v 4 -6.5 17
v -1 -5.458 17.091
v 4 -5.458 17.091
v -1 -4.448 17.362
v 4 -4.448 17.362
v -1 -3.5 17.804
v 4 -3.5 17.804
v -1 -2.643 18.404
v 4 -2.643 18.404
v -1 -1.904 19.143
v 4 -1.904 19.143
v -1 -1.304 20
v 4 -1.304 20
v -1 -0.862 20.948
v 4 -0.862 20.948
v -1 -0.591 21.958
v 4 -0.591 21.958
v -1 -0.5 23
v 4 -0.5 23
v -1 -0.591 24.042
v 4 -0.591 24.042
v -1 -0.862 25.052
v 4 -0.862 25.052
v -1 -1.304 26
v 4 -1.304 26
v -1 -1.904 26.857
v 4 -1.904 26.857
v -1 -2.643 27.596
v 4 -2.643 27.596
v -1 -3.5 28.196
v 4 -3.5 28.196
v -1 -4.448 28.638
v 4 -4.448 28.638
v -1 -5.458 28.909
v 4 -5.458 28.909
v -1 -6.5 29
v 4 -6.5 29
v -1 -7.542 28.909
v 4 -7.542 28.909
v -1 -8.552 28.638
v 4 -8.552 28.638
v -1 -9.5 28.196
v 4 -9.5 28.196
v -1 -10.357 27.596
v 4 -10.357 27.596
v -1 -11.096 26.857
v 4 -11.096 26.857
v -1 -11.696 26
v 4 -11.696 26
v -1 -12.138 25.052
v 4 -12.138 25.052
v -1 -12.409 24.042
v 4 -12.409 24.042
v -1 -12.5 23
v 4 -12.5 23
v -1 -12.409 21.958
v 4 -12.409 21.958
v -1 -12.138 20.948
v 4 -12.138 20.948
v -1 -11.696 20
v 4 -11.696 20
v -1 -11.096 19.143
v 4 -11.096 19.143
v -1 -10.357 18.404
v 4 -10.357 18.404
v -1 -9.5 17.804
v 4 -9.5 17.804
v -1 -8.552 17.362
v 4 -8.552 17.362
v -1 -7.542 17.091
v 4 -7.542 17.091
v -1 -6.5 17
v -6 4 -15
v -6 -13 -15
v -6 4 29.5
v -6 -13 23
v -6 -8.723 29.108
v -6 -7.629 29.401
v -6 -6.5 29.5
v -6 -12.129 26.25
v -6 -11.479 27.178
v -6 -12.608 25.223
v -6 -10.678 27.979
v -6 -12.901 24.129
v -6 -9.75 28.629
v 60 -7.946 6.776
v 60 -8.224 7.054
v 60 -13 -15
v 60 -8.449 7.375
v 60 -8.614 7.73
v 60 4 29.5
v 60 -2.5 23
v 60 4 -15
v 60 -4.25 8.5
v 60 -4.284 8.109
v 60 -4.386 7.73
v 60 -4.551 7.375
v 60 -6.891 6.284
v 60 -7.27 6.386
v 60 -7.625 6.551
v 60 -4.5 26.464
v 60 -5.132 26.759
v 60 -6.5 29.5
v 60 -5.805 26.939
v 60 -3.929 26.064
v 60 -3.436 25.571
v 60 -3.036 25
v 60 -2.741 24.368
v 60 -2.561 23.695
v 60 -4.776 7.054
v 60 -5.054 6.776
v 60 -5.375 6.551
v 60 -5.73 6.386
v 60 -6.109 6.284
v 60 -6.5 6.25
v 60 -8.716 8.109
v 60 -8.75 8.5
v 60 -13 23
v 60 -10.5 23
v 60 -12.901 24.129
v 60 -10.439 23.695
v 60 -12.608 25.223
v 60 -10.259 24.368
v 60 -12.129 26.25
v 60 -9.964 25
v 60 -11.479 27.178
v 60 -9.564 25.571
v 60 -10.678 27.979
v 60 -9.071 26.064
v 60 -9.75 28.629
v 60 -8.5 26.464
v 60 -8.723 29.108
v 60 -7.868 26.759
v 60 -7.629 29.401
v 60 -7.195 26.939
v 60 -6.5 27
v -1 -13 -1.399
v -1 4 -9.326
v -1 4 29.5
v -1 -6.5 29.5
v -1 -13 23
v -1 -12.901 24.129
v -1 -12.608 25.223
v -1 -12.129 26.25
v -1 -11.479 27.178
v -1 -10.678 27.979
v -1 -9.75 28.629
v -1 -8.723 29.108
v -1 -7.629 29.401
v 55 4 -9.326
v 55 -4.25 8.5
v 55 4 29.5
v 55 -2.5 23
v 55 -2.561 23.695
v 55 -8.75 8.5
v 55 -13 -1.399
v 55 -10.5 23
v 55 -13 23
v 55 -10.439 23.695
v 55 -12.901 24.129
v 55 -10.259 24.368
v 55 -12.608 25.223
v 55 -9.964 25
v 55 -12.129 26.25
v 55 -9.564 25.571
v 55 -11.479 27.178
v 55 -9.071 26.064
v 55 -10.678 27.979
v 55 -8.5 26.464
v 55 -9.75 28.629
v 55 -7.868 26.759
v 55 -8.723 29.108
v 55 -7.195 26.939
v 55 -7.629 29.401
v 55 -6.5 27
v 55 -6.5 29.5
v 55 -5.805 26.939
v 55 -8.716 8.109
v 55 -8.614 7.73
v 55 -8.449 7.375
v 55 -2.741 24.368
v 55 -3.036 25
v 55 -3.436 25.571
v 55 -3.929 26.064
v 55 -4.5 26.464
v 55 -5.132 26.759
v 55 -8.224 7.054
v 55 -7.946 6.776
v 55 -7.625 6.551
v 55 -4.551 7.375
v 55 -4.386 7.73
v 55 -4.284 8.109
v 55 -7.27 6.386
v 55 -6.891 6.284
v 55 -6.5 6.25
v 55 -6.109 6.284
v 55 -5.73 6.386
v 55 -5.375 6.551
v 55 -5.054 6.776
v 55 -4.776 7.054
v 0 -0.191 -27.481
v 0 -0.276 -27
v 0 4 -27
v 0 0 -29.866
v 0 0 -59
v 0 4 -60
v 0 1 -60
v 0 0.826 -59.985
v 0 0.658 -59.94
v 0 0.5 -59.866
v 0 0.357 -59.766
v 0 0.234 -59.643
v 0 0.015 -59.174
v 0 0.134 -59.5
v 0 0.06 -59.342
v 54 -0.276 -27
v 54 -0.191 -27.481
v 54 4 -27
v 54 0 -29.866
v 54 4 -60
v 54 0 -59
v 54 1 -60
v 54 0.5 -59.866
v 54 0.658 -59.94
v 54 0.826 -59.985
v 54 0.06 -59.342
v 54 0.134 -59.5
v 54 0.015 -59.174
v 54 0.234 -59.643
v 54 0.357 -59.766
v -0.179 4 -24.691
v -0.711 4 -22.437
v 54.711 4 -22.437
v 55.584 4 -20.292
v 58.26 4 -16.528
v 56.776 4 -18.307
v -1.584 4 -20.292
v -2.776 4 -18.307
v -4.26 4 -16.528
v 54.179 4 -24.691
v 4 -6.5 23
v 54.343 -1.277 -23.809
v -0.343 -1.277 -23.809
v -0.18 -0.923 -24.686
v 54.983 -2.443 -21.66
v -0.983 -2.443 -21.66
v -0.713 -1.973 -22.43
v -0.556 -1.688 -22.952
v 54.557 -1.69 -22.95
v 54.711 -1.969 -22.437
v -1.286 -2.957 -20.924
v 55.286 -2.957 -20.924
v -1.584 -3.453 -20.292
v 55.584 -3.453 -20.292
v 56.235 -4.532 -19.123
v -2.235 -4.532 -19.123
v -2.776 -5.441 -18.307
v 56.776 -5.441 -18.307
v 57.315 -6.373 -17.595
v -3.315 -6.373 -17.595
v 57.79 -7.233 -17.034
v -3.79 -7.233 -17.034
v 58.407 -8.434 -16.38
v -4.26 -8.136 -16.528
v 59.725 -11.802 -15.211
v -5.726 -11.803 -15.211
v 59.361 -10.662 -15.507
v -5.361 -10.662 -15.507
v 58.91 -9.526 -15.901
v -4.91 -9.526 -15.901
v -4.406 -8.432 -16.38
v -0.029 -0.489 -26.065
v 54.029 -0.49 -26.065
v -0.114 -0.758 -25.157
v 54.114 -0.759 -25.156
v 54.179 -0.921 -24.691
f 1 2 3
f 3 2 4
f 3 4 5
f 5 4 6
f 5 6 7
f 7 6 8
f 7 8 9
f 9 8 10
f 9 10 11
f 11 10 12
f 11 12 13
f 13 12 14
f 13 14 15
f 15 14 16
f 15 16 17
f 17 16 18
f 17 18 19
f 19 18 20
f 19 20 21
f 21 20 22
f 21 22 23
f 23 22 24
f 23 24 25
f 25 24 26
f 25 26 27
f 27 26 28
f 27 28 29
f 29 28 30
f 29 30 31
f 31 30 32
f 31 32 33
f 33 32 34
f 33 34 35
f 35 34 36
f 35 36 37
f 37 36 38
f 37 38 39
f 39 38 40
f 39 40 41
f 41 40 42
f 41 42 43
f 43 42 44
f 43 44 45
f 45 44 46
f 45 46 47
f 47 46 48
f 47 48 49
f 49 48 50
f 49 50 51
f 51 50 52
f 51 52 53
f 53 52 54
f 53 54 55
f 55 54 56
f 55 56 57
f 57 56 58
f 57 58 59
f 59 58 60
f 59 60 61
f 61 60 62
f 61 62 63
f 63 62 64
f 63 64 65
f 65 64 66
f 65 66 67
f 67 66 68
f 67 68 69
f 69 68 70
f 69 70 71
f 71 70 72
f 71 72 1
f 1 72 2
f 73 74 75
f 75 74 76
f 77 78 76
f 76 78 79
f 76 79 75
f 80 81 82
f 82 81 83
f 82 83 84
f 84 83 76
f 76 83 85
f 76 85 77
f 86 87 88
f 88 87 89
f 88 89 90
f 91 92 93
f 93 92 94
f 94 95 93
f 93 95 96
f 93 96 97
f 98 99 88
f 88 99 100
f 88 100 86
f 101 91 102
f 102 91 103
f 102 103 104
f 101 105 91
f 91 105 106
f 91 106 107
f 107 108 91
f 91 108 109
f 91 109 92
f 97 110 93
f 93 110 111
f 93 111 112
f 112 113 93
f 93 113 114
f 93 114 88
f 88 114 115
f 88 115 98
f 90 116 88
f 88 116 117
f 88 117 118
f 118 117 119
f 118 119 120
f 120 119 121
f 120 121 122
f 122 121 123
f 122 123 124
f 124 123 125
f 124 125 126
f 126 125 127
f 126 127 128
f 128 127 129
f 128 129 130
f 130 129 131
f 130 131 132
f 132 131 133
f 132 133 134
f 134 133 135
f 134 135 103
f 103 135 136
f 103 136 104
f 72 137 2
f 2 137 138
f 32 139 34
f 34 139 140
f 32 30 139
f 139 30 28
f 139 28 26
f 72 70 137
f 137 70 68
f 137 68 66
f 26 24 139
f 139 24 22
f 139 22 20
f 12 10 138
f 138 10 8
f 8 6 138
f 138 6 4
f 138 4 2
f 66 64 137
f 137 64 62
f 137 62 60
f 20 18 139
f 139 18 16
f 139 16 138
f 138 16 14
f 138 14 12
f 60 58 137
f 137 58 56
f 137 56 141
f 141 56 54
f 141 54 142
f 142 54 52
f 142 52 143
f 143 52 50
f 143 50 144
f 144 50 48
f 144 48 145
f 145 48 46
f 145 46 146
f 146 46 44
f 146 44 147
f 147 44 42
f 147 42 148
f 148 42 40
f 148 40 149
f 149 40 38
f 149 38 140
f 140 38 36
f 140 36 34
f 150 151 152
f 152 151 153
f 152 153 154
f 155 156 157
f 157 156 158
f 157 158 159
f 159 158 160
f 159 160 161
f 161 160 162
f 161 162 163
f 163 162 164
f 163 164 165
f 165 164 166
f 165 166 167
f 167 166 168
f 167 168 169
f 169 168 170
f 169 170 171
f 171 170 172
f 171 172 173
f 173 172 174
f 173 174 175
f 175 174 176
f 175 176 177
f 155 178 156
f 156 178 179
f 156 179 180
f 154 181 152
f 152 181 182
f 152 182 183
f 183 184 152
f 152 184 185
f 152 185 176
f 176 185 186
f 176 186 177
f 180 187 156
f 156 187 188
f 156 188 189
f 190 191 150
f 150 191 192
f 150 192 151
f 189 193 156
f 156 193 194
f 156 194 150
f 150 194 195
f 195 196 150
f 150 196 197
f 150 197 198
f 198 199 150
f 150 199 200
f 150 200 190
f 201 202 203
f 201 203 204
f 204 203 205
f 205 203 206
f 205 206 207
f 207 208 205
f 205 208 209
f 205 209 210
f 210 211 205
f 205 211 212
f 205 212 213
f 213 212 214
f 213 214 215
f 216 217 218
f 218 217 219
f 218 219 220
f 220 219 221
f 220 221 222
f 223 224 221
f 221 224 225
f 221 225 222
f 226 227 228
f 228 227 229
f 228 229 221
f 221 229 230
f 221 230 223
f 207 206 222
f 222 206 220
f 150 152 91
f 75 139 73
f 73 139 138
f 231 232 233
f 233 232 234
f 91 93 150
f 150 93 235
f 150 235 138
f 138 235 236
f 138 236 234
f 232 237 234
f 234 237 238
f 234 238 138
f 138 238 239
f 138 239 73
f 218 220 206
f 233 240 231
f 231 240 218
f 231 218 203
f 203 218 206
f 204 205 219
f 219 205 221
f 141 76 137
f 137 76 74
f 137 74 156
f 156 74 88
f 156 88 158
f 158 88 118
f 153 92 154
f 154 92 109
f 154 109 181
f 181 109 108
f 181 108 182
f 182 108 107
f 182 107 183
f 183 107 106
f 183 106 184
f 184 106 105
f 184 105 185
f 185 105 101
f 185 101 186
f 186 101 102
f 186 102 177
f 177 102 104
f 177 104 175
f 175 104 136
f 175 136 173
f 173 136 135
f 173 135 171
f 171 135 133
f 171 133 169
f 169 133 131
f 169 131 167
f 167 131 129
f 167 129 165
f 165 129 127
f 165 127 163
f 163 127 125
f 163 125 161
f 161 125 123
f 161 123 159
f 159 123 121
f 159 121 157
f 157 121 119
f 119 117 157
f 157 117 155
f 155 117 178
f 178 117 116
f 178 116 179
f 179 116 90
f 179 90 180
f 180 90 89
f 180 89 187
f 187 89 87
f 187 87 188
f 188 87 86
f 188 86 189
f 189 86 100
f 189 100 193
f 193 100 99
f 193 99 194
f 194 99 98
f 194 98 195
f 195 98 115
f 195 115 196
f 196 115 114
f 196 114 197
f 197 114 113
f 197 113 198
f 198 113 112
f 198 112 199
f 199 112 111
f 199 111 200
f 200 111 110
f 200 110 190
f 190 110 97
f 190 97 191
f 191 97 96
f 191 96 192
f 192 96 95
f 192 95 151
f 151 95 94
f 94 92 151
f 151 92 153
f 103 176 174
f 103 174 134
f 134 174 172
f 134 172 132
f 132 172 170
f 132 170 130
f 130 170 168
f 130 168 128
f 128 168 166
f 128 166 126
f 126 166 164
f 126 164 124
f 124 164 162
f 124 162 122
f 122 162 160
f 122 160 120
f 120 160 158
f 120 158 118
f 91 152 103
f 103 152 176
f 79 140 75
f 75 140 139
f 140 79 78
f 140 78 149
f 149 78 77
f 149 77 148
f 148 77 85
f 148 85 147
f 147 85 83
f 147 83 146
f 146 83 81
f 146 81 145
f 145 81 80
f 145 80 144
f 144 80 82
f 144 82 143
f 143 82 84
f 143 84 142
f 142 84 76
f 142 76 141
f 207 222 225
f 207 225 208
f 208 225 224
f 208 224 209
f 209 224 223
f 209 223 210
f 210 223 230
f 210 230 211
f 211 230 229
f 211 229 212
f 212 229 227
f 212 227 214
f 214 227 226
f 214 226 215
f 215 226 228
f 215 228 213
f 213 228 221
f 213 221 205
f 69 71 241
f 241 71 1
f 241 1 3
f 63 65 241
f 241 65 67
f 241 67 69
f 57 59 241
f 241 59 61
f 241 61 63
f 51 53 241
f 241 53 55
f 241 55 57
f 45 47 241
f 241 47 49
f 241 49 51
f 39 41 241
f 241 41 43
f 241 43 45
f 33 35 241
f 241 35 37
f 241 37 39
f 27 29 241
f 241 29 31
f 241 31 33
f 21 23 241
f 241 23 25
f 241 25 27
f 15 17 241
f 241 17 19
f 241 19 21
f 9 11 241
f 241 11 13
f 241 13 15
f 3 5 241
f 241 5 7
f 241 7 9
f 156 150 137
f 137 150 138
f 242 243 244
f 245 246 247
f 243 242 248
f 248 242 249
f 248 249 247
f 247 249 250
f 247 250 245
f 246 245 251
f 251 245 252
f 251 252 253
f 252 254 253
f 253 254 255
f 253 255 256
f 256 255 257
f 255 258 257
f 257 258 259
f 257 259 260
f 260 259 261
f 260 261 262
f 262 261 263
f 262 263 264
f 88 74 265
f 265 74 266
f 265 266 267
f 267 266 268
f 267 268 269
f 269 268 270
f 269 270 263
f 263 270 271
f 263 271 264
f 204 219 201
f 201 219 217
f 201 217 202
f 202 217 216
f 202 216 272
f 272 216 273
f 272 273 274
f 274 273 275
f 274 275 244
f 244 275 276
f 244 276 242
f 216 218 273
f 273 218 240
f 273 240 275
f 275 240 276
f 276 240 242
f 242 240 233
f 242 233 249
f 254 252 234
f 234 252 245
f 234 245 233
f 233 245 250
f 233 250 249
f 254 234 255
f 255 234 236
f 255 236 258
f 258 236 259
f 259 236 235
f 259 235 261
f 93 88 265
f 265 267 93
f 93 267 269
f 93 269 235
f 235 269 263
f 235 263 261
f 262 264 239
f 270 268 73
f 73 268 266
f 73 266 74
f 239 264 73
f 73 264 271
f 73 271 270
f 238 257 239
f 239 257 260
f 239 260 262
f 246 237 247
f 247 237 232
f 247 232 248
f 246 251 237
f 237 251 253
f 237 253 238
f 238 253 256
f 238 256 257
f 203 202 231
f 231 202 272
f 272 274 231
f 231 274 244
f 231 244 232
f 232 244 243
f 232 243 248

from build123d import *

# Parameters (mm, degrees)
SKETCH1_W                = 54
SKETCH1_H                = 60
BOSS_EXTRUDE1_DEPTH      = 4
BOSS_EXTRUDE2_DEPTH      = 6
BOSS_EXTRUDE2_DEPTH_BACK = 60
SKETCH2_W                = 10
SKETCH2_H                = 17
SKETCH3_W                = 28
SKETCH3_H                = 13
BOSS_EXTRUDE3_DEPTH      = 66
SKETCH9_W                = 56
SKETCH9_H                = 28
CUT_EXTRUDE3_DEPTH       = 13
SKETCH10_W               = 5
SKETCH10_H               = 28
BOSS_EXTRUDE6_DEPTH      = 4
SKETCH11_R               = 2.25
CUT_EXTRUDE5_DEPTH       = 91.138781887
SKETCH12_W               = 5
SKETCH12_H               = 17
BOSS_EXTRUDE7_DEPTH      = 4
CUT_EXTRUDE6_DEPTH       = 91.138781887
FILLET3_R                = 1
BOSS_EXTRUDE8_DEPTH      = 10
BOSS_EXTRUDE8_DEPTH_BACK = 5
SKETCH14_R               = 4
SKETCH15_W               = 17
SKETCH15_H               = 8
BOSS_EXTRUDE9_DEPTH      = 5
SKETCH16_R               = 6
BOSS_EXTRUDE11_DEPTH     = 12
SKETCH17_R               = 6
CUT_EXTRUDE7_DEPTH       = 5
CHAMFER1_SIZE            = 9.326153163
CHAMFER1_SIZE_2          = 20
SKETCH18_W               = 66
SKETCH18_H               = 5
BOSS_EXTRUDE14_DEPTH     = 17
FILLET8_R                = 15
FILLET9_R                = 15


with BuildPart() as part:
    # Sketch1 → Boss-Extrude1 (new body)
    with BuildSketch(Plane(origin=(0, 0, 0), x_dir=(1, 0, 0), z_dir=(0, 1, 0))):
        with Locations((27, 30)):
            Rectangle(SKETCH1_W, SKETCH1_H)
    extrude(amount=BOSS_EXTRUDE1_DEPTH)

    # Sketch2 → Boss-Extrude2 (add, two sides: drawn at the far end of the back side and taken through both)
    with BuildSketch(Plane(origin=(54, 0, 0), x_dir=(0, 0, -1), z_dir=(1, 0, 0)).offset(-BOSS_EXTRUDE2_DEPTH_BACK)):
        with Locations((5, -4.5)):
            Rectangle(SKETCH2_W, SKETCH2_H)
    extrude(amount=BOSS_EXTRUDE2_DEPTH + BOSS_EXTRUDE2_DEPTH_BACK)

    # Sketch3 → Boss-Extrude3 (add, through all)
    with BuildSketch(Plane(origin=(60, 0, 0), x_dir=(0, 0, -1), z_dir=(1, 0, 0))):
        with Locations((-14, -6.5)):
            Rectangle(SKETCH3_W, SKETCH3_H)
    extrude(amount=-BOSS_EXTRUDE3_DEPTH)

    # Sketch9 → Cut-Extrude3 (cut)
    with BuildSketch(Plane(origin=(0, 0, 0), x_dir=(1, 0, 0), z_dir=(0, 1, 0))):
        with Locations((27, -14)):
            Rectangle(SKETCH9_W, SKETCH9_H)
    extrude(amount=-CUT_EXTRUDE3_DEPTH, mode=Mode.SUBTRACT)

    # Sketch10 → Boss-Extrude6 (add)
    with BuildSketch(Plane(origin=(0, 0, 0), x_dir=(1, 0, 0), z_dir=(0, 1, 0))):
        with Locations((-3.5, -14)):
            Rectangle(SKETCH10_W, SKETCH10_H)
        with Locations((57.5, -14)):
            Rectangle(SKETCH10_W, SKETCH10_H)
    extrude(amount=BOSS_EXTRUDE6_DEPTH)

    # Sketch11 → Cut-Extrude5 (cut, through all)
    with BuildSketch(Plane(origin=(60, 0, 0), x_dir=(0, 0, -1), z_dir=(1, 0, 0))):
        with BuildLine():
            Line((-22.048344565, -2.614854966), (-23, -2.5))
            ThreePointArc((-23, -2.5), (-27, -6.5), (-23, -10.5))
            Line((-23, -10.5), (-22.048344565, -10.385145034))
            ThreePointArc((-22.048344565, -10.385145034), (-19.853047368, -8.96914745), (-19, -6.5))
            ThreePointArc((-19, -6.5), (-19.853047368, -4.03085255), (-22.048344565, -2.614854966))
        make_face()
        with BuildLine():
            Line((-8.5, -4.25), (-22.048344565, -2.614854966))
            ThreePointArc((-22.048344565, -2.614854966), (-19.853047368, -4.03085255), (-19, -6.5))
            ThreePointArc((-19, -6.5), (-19.853047368, -8.96914745), (-22.048344565, -10.385145034))
            Line((-22.048344565, -10.385145034), (-8.5, -8.75))
            ThreePointArc((-8.5, -8.75), (-10.75, -6.5), (-8.5, -4.25))
        make_face()
        with Locations((-8.5, -6.5)):
            Circle(SKETCH11_R)
    extrude(amount=-CUT_EXTRUDE5_DEPTH, mode=Mode.SUBTRACT)

    # Sketch12 → Boss-Extrude7 (add)
    with BuildSketch(Plane.XY.offset(28)):
        with Locations((57.5, -4.5)):
            Rectangle(SKETCH12_W, SKETCH12_H)
        with Locations((-3.5, -4.5)):
            Rectangle(SKETCH12_W, SKETCH12_H)
    extrude(amount=BOSS_EXTRUDE7_DEPTH)

    # Sketch13 → Cut-Extrude6 (cut, through all)
    with BuildSketch(Plane.ZY.offset(6)):
        with BuildLine():
            Line((29.5, -6.5), (29.5, 4))
            Line((29.5, 4), (32, 4))
            Line((32, 4), (32, -13))
            Line((32, -13), (23, -13))
            ThreePointArc((23, -13), (27.596194078, -11.096194078), (29.5, -6.5))
        make_face()
    extrude(amount=-CUT_EXTRUDE6_DEPTH, mode=Mode.SUBTRACT)

    # Fillet3
    fillet3_edges = [part.edges().sort_by_distance(p)[0] for p in [
        (27, 0, -60),
    ]]
    fillet(fillet3_edges, radius=FILLET3_R)

    # Sketch14 → Boss-Extrude8 (add, two sides: drawn at the far end of the back side and taken through both)
    with BuildSketch(Plane(origin=(-1, 0, 0), x_dir=(0, 0, -1), z_dir=(1, 0, 0)).offset(-BOSS_EXTRUDE8_DEPTH_BACK)):
        with Locations((-23, -6.5)):
            Circle(SKETCH14_R)
    extrude(amount=BOSS_EXTRUDE8_DEPTH + BOSS_EXTRUDE8_DEPTH_BACK)

    # Sketch15 → Boss-Extrude9 (add)
    with BuildSketch(Plane(origin=(-1, 0, 0), x_dir=(0, 0, -1), z_dir=(1, 0, 0))):
        with Locations((-14.5, -6.5)):
            Rectangle(SKETCH15_W, SKETCH15_H)
    extrude(amount=-BOSS_EXTRUDE9_DEPTH)

    # Sketch16 → Boss-Extrude11 (add)
    with BuildSketch(Plane(origin=(9, 0, 0), x_dir=(0, 0, -1), z_dir=(1, 0, 0))):
        with Locations((-23, -6.5)):
            Circle(SKETCH16_R)
    extrude(amount=-BOSS_EXTRUDE11_DEPTH)

    # Sketch17 → Cut-Extrude7 (cut)
    with BuildSketch(Plane(origin=(9, 0, 0), x_dir=(0, 0, -1), z_dir=(1, 0, 0))):
        with Locations((-23, -6.5)):
            Circle(SKETCH17_R)
    extrude(amount=-CUT_EXTRUDE7_DEPTH, mode=Mode.SUBTRACT)

    # Chamfer1
    # the kernel refuses this chamfer: 20, 9.326153163 mm, written as the material it takes off along each edge
    with BuildSketch(Plane(origin=(55, 4, 0), x_dir=(0, 0.07481330637059955, -0.9971975577536774), z_dir=(-1, 0, 0))) as chamfer1_piece_1:
        Polygon((CHAMFER1_SIZE * 0.997197557764, CHAMFER1_SIZE * 0.0748133063714), (-CHAMFER1_SIZE_2 * 0.0748133063706, CHAMFER1_SIZE_2 * 0.997197557754), (0, 0), align=None)
    extrude(amount=56, mode=Mode.SUBTRACT)

    # Sketch18 → Boss-Extrude14 (add)
    with BuildSketch(Plane(origin=(0, 4, 0), x_dir=(1, 0, 0), z_dir=(0, 1, 0))):
        with Locations((27, 12.5)):
            Rectangle(SKETCH18_W, SKETCH18_H)
    extrude(amount=-BOSS_EXTRUDE14_DEPTH)

    # Fillet8
    # the kernel refuses this fillet: 15 mm, written as the material it adds along each edge
    with BuildSketch(Plane(origin=(54, 0, -15), x_dir=(0, -1, 0), z_dir=(-1, 0, 0))) as fillet8_piece_1:
        with BuildLine():
            CenterArc((15, -14.866068747), FILLET8_R, 97.662255661, 82.337744339)
            Line((0, -14.866068747), (-0.3, -14.866068747))
            Line((-0.3, -14.866068747), (-0.3, 0))
            Line((-0.3, 0), (0, 0.3))
            ThreePointArc((0, 0.3), (6.5, 0.3), (12.96, 0.297321375))
            Line((12.96, 0.297321375), (13, 0))
        make_face()
    extrude(amount=54)

    # Fillet9
    # the kernel refuses this fillet: 15 mm, written as the material it adds along each edge
    with BuildSketch(Plane(origin=(54, 4, -15), x_dir=(1, 0, 0), z_dir=(0, -1, 0))) as fillet9_piece_1_section:
        with BuildLine():
            CenterArc((15, -12), FILLET9_R, 126.869897646, 53.130102354)
            Line((0, -12), (0, 0))
            Line((0, 0), (6, 0))
        make_face()
    fillet9_piece_1 = extrude(amount=17, mode=Mode.PRIVATE)
    fillet9_piece_1 = fillet9_piece_1 - Plane(origin=(58.238574597, -15, -29.866068747), x_dir=(0, -1, 0), z_dir=(1, 0, 0)) * Cylinder(15, 83, mode=Mode.PRIVATE)
    add(fillet9_piece_1)
    with BuildSketch(Plane(origin=(0, -13, -15), x_dir=(0, 0, -1), z_dir=(0, 1, 0))) as fillet9_piece_2_section:
        with BuildLine():
            CenterArc((12, 15), FILLET9_R, 216.869897646, 53.130102354)
            Line((0, 6), (0, 0))
            Line((0, 0), (12, 0))
        make_face()
    fillet9_piece_2 = extrude(amount=17, mode=Mode.PRIVATE)
    fillet9_piece_2 = fillet9_piece_2 - Plane(origin=(-0.149142202, -15, -29.866068747), x_dir=(0, -1, 0), z_dir=(1, 0, 0)) * Cylinder(15, 82, mode=Mode.PRIVATE)
    add(fillet9_piece_2)


solid = part.part
